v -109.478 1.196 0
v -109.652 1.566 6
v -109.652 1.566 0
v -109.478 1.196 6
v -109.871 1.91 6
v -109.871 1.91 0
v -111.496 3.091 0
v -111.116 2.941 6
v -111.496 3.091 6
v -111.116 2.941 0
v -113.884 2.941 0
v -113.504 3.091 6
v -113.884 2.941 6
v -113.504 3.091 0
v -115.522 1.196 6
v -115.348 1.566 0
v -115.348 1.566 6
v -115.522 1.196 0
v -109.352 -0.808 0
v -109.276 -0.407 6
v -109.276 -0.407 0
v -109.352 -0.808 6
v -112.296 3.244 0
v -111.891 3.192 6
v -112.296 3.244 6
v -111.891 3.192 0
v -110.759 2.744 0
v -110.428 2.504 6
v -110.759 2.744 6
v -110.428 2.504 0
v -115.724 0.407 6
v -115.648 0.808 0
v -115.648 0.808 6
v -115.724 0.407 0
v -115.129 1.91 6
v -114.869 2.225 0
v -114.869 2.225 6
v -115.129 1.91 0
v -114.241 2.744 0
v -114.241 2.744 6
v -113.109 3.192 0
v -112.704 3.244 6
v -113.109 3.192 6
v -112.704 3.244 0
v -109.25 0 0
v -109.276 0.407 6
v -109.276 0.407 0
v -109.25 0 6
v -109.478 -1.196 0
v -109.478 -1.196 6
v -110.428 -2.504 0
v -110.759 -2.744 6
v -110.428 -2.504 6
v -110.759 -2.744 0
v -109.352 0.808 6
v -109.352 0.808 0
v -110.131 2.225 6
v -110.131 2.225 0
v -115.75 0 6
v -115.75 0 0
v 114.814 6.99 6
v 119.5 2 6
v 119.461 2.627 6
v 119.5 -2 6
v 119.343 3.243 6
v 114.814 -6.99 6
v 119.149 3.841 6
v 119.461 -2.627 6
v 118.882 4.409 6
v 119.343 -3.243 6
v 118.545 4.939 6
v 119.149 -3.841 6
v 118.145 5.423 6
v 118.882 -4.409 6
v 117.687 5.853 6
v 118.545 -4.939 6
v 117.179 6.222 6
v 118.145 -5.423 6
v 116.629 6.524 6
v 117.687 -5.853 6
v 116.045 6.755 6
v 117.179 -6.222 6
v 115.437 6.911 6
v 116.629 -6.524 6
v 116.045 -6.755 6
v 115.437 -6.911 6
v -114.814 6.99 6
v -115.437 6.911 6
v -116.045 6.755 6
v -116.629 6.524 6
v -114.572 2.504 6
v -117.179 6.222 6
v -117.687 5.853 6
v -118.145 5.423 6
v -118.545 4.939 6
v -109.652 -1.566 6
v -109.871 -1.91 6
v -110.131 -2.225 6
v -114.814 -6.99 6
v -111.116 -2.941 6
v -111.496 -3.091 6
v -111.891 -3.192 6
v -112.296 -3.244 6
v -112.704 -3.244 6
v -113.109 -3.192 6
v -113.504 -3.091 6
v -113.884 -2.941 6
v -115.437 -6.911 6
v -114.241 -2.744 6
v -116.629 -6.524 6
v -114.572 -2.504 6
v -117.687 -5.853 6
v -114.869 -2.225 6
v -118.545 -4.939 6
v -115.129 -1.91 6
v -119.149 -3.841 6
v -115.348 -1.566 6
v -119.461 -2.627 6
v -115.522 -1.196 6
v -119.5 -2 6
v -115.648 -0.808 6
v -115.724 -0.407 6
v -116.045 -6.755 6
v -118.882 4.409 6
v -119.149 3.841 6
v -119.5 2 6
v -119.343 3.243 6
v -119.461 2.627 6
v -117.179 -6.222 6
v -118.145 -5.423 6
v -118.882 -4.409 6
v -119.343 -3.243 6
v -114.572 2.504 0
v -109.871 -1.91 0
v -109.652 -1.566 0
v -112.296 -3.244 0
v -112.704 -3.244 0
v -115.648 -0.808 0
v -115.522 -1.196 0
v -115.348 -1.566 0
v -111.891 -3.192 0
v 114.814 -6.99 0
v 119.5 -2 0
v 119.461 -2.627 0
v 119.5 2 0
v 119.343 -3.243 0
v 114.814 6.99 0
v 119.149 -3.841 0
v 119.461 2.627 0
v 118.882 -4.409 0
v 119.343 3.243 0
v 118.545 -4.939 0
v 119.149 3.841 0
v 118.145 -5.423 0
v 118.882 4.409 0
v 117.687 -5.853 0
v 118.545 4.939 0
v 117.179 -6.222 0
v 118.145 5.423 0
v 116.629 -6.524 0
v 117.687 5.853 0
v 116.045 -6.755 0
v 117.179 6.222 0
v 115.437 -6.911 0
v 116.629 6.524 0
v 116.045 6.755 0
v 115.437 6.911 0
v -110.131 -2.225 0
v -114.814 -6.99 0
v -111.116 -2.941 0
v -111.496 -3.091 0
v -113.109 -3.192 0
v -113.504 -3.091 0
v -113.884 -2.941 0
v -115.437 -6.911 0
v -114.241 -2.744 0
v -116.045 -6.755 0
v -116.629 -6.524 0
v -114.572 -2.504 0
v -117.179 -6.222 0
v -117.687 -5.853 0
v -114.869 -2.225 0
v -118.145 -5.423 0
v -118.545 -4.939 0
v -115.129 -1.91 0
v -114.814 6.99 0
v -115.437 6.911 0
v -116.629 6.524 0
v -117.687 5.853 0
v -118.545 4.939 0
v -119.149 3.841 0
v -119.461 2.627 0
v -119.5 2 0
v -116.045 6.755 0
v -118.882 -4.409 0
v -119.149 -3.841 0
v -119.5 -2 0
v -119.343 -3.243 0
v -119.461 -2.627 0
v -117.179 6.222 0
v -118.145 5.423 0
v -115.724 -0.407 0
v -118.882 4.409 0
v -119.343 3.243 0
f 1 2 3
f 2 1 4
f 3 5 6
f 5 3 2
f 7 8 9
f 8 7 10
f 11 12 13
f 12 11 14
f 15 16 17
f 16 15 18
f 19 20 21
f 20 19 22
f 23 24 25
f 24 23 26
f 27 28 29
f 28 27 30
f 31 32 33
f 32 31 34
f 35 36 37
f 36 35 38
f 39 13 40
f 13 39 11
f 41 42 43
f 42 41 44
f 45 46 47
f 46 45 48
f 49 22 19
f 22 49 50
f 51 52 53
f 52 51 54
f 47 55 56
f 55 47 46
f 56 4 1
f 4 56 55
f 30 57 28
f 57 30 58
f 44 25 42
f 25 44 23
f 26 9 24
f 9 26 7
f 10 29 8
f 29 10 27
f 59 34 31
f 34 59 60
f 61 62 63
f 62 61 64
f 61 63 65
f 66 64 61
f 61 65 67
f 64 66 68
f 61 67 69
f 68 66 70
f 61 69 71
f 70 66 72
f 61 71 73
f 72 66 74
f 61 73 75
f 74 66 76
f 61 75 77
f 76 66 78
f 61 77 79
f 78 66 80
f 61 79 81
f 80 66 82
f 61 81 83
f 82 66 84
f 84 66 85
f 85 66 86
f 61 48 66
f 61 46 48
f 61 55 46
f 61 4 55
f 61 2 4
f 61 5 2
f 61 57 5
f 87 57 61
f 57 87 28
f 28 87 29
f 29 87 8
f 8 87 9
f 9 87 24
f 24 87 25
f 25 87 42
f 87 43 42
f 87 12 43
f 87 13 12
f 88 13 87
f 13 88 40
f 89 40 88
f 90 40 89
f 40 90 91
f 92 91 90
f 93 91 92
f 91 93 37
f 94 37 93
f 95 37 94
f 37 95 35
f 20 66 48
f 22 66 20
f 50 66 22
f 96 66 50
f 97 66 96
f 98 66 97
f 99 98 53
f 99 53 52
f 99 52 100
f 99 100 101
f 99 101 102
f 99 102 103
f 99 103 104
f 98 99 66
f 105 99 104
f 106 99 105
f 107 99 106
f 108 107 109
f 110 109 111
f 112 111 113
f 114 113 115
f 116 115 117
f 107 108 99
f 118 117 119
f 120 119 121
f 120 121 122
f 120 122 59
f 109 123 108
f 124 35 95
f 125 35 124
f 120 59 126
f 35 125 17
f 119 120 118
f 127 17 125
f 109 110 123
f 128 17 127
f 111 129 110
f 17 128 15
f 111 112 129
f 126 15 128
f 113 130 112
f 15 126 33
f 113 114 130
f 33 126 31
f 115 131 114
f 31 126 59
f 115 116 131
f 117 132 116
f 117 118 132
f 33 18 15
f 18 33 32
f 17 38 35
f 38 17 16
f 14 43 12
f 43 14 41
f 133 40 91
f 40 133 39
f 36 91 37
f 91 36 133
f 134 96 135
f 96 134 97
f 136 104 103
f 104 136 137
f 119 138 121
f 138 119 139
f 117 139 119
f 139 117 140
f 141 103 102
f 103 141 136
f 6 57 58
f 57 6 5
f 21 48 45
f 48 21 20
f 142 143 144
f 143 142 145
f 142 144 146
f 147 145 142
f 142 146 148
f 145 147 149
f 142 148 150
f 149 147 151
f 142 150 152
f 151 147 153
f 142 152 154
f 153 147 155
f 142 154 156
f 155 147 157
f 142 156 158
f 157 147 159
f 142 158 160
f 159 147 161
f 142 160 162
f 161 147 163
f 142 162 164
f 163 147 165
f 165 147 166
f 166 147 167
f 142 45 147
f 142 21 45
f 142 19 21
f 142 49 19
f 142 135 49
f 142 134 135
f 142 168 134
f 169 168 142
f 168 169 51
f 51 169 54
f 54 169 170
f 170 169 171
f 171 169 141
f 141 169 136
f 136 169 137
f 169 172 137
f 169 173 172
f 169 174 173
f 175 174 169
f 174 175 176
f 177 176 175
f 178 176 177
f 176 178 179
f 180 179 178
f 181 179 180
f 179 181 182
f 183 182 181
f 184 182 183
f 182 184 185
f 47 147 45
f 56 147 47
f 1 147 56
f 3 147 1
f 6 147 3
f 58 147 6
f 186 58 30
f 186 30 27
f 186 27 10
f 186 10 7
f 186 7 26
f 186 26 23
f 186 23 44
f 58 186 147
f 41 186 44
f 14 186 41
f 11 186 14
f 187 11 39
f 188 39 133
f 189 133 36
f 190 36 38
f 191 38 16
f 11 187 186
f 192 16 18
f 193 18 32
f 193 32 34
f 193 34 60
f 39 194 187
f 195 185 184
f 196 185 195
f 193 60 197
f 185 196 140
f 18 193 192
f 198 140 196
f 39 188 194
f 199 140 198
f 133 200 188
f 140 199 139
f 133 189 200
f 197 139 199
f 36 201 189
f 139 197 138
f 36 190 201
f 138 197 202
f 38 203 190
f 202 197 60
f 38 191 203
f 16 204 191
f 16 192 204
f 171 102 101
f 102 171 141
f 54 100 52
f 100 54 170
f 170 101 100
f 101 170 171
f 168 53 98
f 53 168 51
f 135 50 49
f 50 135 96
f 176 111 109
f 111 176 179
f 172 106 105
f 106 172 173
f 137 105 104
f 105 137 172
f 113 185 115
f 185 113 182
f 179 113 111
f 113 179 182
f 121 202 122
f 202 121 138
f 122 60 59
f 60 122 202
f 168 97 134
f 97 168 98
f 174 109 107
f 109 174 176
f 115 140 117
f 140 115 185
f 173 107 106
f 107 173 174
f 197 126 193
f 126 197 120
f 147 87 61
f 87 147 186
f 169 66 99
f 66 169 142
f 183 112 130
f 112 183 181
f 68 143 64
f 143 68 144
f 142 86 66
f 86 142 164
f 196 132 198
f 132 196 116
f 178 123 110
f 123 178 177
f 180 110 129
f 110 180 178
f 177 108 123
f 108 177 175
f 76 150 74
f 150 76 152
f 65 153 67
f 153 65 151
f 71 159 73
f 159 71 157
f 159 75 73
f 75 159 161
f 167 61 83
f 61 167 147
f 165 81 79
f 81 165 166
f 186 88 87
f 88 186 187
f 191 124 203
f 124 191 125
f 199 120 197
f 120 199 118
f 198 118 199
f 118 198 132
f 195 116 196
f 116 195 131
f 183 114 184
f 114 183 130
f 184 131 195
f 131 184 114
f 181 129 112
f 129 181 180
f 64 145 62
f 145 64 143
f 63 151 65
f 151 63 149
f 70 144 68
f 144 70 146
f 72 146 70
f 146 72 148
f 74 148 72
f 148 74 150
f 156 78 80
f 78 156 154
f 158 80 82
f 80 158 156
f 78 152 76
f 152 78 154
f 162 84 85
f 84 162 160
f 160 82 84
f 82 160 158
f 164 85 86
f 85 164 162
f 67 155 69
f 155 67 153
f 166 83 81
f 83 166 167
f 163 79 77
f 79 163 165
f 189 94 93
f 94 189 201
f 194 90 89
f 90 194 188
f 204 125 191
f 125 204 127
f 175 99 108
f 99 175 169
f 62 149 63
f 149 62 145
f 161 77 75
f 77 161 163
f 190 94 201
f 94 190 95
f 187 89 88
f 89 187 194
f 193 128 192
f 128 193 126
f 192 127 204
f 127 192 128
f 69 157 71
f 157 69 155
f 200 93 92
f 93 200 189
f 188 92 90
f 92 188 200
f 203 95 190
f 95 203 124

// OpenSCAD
$fn = 50;


difference() {
	union() {
		hull() {
			translate(v = [-114.5000000000, 2.0000000000, 0]) {
				cylinder(h = 6, r = 5);
			}
			translate(v = [114.5000000000, 2.0000000000, 0]) {
				cylinder(h = 6, r = 5);
			}
			translate(v = [-114.5000000000, -2.0000000000, 0]) {
				cylinder(h = 6, r = 5);
			}
			translate(v = [114.5000000000, -2.0000000000, 0]) {
				cylinder(h = 6, r = 5);
			}
		}
	}
	union() {
		translate(v = [-112.5000000000, 0.0000000000, 0]) {
			cylinder(h = 6, r = 3.2500000000);
		}
		translate(v = [-112.5000000000, 0.0000000000, 0]) {
			cylinder(h = 6, r = 1.8000000000);
		}
		translate(v = [-112.5000000000, 0.0000000000, 0]) {
			cylinder(h = 6, r = 1.8000000000);
		}
		translate(v = [-112.5000000000, 0.0000000000, 0]) {
			cylinder(h = 6, r = 1.8000000000);
		}
	}
}
